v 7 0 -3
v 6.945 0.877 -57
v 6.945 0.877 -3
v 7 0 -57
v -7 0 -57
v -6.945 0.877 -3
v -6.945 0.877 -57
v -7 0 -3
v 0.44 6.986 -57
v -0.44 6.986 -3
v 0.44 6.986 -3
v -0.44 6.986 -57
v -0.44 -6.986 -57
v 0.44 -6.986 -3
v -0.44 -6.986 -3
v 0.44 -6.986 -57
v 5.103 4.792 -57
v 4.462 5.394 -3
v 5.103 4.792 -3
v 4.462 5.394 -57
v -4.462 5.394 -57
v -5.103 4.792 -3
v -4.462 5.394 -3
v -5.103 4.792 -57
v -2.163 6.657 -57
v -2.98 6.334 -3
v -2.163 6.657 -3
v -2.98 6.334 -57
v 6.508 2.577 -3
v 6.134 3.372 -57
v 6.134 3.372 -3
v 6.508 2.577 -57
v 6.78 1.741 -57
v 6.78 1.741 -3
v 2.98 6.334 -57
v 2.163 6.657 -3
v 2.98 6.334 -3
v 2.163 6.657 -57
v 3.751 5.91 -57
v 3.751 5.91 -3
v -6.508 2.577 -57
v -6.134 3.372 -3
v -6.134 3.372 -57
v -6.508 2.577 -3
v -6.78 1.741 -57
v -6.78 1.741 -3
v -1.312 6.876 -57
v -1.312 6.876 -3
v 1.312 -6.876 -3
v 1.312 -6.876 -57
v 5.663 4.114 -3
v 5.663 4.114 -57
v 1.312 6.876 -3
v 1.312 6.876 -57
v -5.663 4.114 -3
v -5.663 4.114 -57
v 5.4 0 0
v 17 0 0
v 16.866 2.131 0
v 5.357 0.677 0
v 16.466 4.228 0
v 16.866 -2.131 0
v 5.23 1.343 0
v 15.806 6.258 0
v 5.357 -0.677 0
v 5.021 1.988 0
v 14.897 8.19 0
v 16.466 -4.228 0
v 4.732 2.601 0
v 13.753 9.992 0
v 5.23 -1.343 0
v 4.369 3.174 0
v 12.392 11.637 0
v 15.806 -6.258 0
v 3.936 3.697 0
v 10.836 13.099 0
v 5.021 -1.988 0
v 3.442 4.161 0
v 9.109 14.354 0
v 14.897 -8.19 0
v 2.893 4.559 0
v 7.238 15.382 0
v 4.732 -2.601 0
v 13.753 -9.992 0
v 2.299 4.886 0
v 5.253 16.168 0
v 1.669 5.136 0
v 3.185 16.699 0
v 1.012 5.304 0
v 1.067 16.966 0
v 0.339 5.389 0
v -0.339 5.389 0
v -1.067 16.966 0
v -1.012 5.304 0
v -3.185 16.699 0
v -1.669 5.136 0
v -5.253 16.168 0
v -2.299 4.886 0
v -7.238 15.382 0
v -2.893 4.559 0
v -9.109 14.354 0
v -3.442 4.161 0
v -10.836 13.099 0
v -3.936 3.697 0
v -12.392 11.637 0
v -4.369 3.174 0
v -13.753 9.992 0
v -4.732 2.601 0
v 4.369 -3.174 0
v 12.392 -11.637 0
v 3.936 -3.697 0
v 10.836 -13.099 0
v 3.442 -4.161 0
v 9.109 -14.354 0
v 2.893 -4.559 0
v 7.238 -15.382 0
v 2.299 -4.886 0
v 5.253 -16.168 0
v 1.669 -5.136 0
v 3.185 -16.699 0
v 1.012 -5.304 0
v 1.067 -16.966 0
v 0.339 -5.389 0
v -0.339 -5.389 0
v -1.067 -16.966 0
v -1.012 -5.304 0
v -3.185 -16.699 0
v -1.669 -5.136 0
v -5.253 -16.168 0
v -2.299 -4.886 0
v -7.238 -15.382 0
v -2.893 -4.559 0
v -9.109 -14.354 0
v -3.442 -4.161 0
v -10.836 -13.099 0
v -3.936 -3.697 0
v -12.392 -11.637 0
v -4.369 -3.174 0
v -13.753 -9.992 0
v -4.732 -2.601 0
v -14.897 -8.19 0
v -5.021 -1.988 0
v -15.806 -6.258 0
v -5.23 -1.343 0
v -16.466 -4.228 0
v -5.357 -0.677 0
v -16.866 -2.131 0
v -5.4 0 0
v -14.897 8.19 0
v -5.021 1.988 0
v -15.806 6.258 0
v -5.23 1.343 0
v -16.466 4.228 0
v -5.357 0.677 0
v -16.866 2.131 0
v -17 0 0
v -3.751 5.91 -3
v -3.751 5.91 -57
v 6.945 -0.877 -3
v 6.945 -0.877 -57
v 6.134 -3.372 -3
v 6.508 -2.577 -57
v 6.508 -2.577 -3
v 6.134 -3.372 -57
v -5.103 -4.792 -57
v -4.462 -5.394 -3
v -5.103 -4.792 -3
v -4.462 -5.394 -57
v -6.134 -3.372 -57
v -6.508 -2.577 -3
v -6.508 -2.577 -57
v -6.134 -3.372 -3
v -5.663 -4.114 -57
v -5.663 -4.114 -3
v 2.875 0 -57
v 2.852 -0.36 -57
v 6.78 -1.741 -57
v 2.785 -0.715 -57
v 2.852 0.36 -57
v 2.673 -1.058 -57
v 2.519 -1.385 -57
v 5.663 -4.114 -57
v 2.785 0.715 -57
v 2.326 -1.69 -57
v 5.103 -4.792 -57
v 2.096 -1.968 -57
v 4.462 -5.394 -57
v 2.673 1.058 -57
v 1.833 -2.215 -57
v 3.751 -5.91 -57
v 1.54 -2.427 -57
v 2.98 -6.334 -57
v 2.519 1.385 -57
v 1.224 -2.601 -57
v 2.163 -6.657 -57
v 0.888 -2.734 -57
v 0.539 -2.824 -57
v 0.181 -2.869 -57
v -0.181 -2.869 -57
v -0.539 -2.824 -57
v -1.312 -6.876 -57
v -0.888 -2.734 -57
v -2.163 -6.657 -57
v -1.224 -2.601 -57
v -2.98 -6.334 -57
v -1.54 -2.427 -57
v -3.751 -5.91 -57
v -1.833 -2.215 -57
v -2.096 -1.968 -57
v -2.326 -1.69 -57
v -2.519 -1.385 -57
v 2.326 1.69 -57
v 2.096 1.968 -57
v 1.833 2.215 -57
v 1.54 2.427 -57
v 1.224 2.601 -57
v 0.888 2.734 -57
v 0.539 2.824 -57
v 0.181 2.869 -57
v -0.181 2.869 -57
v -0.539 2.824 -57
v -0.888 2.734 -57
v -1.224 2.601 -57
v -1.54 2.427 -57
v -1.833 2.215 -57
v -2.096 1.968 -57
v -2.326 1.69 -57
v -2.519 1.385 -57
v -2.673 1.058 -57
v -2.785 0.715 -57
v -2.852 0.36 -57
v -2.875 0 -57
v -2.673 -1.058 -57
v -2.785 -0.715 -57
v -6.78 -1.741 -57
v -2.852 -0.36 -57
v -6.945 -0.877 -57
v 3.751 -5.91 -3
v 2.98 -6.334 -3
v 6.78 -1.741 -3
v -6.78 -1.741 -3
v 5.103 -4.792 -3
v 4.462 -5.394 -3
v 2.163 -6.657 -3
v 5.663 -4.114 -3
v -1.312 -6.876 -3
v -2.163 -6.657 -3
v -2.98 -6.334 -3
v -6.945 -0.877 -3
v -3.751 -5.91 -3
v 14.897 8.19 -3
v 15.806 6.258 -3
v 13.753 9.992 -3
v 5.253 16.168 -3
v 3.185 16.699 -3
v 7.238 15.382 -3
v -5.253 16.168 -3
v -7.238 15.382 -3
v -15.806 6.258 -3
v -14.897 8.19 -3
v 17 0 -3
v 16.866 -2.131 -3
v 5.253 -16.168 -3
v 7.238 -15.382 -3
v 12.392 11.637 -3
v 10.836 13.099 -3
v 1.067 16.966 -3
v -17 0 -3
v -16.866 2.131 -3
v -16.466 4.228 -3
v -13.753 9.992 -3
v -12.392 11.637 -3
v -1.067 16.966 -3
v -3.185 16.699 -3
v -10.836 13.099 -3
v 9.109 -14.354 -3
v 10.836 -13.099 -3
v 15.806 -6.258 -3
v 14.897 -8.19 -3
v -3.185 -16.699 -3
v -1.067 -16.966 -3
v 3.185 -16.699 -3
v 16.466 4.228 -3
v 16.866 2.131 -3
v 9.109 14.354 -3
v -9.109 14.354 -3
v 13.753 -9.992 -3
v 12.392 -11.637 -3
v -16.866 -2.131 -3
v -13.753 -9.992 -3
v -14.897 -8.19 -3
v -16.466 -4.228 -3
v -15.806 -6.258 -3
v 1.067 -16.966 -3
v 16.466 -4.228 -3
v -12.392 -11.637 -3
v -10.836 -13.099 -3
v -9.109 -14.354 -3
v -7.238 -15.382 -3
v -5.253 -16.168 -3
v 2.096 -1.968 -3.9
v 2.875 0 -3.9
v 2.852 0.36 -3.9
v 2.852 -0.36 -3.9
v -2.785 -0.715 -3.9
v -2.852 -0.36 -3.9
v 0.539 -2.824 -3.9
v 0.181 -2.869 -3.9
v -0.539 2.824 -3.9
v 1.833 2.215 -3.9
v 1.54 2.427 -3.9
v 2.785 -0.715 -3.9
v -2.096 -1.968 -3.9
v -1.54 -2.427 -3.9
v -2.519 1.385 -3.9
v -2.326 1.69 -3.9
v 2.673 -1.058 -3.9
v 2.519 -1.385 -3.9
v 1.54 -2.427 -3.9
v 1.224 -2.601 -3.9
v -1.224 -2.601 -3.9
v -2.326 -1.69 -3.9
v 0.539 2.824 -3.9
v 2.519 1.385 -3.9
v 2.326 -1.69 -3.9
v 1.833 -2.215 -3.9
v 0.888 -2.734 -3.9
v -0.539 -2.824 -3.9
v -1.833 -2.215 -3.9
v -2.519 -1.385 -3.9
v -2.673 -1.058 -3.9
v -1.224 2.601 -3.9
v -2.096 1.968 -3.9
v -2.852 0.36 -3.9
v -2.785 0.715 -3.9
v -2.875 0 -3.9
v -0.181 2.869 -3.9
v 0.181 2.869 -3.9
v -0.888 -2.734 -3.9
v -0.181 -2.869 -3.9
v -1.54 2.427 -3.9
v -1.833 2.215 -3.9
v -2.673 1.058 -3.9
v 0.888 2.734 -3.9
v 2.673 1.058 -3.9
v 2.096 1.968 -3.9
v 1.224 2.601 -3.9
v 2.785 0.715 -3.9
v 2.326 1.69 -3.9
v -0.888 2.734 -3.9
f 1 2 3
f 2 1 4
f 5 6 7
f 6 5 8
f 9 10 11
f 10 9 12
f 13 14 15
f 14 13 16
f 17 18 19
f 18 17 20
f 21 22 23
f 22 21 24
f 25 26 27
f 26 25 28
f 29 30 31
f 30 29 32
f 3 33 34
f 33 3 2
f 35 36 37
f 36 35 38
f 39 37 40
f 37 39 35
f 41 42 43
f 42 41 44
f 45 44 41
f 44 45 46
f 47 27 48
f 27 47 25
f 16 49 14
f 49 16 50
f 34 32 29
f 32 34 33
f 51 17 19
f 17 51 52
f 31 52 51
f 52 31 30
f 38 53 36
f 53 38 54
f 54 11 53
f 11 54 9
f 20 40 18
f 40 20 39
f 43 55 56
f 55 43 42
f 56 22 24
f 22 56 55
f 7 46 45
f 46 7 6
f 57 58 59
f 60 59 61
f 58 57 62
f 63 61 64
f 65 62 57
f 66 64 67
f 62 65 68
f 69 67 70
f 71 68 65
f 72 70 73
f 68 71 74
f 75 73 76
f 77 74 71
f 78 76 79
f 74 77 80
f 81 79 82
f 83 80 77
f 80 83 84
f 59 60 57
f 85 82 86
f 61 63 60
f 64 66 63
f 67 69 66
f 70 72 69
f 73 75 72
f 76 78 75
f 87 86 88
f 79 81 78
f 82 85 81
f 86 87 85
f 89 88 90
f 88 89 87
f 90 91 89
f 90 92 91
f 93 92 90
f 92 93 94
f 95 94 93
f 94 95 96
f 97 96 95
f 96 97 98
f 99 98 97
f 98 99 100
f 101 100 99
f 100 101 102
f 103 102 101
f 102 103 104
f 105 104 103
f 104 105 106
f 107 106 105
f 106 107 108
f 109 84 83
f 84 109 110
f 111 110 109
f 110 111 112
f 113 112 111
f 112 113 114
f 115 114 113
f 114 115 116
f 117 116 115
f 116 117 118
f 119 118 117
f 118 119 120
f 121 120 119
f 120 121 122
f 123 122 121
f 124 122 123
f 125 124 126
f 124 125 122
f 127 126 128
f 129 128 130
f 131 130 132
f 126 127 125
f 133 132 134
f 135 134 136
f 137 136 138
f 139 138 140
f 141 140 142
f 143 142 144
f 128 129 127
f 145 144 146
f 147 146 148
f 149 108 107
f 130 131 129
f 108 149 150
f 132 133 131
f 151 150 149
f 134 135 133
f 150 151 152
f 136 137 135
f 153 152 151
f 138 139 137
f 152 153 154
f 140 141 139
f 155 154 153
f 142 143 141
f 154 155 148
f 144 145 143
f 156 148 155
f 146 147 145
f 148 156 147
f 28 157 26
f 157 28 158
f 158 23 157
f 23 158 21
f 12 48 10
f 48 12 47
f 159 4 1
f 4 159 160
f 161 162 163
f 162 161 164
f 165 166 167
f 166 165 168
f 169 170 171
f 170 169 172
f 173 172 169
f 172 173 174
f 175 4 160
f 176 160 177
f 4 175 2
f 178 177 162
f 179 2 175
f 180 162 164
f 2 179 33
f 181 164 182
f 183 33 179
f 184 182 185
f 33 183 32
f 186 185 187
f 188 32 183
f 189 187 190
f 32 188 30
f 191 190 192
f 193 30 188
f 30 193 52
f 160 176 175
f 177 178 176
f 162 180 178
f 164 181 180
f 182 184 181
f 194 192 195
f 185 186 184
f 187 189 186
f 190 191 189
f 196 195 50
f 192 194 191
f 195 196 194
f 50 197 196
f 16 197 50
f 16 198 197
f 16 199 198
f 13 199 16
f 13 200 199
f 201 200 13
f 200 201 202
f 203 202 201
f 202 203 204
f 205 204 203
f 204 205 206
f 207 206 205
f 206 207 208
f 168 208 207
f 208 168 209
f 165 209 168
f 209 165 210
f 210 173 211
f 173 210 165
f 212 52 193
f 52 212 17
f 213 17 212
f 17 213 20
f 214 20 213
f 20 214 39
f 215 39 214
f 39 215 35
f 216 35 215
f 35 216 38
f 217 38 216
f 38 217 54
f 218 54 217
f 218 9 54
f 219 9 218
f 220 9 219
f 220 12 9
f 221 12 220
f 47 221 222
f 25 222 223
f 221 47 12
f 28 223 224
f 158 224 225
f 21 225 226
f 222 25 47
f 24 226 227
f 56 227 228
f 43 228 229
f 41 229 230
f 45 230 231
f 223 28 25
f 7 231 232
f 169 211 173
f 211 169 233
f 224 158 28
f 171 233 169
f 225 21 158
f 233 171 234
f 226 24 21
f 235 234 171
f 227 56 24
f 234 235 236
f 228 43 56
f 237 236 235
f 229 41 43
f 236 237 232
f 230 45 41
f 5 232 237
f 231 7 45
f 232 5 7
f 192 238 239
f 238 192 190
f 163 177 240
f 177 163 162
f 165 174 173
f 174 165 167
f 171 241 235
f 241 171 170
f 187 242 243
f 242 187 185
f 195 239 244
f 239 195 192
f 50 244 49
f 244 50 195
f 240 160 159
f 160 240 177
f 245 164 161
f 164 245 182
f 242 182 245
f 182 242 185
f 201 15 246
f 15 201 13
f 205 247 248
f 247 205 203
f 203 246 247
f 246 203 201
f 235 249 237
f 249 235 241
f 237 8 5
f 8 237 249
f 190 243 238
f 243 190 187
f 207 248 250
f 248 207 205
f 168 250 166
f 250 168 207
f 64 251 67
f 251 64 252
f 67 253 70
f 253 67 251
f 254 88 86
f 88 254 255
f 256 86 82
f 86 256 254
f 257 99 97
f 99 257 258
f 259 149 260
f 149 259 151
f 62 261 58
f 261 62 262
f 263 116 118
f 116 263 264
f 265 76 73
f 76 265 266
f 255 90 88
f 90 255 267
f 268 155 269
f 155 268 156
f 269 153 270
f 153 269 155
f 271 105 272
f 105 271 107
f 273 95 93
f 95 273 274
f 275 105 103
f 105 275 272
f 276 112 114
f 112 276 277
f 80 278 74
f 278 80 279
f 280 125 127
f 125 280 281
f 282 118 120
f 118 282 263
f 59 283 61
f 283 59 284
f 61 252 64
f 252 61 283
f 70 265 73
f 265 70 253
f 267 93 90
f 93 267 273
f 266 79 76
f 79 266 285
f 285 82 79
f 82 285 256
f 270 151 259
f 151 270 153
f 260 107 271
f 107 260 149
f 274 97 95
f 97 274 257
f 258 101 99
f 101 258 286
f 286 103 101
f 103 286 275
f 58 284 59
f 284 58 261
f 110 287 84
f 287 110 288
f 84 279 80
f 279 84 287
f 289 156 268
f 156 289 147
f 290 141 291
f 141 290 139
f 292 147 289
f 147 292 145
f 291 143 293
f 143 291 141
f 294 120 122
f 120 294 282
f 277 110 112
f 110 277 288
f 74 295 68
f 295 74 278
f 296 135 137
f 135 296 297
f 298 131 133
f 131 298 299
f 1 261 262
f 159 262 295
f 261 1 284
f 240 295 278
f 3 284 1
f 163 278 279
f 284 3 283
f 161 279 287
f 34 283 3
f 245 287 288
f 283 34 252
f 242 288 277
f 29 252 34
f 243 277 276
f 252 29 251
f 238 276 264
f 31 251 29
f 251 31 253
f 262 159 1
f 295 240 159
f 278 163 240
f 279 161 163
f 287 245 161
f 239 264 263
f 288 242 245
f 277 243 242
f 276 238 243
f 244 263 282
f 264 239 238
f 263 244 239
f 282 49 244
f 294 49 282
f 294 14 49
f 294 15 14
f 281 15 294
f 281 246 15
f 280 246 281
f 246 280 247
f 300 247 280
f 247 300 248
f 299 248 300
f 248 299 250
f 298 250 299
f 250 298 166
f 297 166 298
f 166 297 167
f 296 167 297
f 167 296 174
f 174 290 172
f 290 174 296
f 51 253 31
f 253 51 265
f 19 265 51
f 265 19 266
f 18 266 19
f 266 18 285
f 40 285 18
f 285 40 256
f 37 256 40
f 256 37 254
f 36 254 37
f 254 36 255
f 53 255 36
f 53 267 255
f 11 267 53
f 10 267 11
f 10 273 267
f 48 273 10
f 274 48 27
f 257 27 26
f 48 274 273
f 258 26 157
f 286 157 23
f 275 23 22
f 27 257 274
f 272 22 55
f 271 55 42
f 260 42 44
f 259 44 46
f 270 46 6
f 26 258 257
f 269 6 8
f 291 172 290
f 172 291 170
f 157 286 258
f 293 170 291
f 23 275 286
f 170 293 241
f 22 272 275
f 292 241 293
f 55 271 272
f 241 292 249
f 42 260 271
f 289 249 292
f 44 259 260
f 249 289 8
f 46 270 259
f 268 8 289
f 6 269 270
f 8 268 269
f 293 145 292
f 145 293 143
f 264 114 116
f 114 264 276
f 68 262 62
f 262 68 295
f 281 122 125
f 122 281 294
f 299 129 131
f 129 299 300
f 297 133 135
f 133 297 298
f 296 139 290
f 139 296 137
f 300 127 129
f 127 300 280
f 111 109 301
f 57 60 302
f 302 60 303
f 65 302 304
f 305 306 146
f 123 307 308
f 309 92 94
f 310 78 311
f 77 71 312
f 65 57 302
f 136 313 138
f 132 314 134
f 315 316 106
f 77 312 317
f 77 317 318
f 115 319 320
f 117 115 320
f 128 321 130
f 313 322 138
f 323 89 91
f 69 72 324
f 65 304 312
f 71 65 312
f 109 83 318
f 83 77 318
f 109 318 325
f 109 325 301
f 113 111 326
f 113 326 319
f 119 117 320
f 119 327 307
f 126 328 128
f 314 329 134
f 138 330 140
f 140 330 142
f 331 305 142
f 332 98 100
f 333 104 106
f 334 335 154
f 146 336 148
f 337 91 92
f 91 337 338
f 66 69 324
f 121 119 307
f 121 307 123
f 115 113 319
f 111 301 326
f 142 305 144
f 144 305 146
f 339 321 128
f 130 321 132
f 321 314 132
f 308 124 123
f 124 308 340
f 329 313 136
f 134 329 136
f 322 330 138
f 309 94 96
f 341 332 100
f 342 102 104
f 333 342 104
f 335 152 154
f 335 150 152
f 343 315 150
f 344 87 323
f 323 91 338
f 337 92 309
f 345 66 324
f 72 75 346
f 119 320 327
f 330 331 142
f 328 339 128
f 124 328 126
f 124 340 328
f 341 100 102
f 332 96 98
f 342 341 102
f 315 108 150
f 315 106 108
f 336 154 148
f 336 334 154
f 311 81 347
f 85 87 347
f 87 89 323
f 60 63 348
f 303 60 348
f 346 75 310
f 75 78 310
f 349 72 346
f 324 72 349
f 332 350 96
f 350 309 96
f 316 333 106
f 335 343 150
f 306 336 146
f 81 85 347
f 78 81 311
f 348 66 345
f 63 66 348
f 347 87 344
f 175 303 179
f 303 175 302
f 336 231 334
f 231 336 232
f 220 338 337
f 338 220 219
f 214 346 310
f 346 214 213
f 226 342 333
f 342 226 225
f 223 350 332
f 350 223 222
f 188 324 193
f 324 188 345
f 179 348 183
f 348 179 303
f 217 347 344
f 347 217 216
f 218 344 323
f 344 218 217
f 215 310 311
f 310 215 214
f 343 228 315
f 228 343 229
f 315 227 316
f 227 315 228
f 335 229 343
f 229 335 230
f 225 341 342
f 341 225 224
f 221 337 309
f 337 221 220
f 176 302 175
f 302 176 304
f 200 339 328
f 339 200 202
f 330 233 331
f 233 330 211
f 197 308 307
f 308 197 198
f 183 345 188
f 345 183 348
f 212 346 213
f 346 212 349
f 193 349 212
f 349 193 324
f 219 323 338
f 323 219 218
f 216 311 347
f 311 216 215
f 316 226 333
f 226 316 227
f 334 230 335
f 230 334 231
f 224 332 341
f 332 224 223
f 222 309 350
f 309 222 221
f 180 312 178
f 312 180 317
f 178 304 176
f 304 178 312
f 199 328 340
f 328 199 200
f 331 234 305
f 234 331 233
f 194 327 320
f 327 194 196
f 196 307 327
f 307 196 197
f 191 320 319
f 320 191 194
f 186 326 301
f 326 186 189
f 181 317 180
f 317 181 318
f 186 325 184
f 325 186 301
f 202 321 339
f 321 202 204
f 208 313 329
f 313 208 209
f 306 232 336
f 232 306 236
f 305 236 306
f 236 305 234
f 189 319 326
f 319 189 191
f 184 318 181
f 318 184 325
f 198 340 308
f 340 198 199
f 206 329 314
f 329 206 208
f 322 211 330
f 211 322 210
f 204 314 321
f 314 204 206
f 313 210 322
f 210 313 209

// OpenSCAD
$fn = 50;


difference() {
	union() {
		translate(v = [0, 0, -57.0000000000]) {
			cylinder(h = 57, r = 7.0000000000);
		}
		translate(v = [0, 0, -3.0000000000]) {
			cylinder(h = 3, r = 17.0000000000);
		}
	}
	union() {
		translate(v = [0, 0, 0]) {
			rotate(a = [0, 0, 0]) {
				difference() {
					union() {
						#translate(v = [0, 0, -57.0000000000]) {
							cylinder(h = 57, r = 2.6000000000);
						}
						#translate(v = [0, 0, -3.9000000000]) {
							cylinder(h = 3.9000000000, r = 7.0000000000, r1 = 2.8750000000, r2 = 5.4000000000);
						}
						#translate(v = [0, 0, -57.0000000000]) {
							cylinder(h = 57, r = 2.8750000000);
						}
						#translate(v = [0, 0, -57.0000000000]) {
							cylinder(h = 57, r = 2.6000000000);
						}
					}
					union();
				}
			}
		}
	}
}
